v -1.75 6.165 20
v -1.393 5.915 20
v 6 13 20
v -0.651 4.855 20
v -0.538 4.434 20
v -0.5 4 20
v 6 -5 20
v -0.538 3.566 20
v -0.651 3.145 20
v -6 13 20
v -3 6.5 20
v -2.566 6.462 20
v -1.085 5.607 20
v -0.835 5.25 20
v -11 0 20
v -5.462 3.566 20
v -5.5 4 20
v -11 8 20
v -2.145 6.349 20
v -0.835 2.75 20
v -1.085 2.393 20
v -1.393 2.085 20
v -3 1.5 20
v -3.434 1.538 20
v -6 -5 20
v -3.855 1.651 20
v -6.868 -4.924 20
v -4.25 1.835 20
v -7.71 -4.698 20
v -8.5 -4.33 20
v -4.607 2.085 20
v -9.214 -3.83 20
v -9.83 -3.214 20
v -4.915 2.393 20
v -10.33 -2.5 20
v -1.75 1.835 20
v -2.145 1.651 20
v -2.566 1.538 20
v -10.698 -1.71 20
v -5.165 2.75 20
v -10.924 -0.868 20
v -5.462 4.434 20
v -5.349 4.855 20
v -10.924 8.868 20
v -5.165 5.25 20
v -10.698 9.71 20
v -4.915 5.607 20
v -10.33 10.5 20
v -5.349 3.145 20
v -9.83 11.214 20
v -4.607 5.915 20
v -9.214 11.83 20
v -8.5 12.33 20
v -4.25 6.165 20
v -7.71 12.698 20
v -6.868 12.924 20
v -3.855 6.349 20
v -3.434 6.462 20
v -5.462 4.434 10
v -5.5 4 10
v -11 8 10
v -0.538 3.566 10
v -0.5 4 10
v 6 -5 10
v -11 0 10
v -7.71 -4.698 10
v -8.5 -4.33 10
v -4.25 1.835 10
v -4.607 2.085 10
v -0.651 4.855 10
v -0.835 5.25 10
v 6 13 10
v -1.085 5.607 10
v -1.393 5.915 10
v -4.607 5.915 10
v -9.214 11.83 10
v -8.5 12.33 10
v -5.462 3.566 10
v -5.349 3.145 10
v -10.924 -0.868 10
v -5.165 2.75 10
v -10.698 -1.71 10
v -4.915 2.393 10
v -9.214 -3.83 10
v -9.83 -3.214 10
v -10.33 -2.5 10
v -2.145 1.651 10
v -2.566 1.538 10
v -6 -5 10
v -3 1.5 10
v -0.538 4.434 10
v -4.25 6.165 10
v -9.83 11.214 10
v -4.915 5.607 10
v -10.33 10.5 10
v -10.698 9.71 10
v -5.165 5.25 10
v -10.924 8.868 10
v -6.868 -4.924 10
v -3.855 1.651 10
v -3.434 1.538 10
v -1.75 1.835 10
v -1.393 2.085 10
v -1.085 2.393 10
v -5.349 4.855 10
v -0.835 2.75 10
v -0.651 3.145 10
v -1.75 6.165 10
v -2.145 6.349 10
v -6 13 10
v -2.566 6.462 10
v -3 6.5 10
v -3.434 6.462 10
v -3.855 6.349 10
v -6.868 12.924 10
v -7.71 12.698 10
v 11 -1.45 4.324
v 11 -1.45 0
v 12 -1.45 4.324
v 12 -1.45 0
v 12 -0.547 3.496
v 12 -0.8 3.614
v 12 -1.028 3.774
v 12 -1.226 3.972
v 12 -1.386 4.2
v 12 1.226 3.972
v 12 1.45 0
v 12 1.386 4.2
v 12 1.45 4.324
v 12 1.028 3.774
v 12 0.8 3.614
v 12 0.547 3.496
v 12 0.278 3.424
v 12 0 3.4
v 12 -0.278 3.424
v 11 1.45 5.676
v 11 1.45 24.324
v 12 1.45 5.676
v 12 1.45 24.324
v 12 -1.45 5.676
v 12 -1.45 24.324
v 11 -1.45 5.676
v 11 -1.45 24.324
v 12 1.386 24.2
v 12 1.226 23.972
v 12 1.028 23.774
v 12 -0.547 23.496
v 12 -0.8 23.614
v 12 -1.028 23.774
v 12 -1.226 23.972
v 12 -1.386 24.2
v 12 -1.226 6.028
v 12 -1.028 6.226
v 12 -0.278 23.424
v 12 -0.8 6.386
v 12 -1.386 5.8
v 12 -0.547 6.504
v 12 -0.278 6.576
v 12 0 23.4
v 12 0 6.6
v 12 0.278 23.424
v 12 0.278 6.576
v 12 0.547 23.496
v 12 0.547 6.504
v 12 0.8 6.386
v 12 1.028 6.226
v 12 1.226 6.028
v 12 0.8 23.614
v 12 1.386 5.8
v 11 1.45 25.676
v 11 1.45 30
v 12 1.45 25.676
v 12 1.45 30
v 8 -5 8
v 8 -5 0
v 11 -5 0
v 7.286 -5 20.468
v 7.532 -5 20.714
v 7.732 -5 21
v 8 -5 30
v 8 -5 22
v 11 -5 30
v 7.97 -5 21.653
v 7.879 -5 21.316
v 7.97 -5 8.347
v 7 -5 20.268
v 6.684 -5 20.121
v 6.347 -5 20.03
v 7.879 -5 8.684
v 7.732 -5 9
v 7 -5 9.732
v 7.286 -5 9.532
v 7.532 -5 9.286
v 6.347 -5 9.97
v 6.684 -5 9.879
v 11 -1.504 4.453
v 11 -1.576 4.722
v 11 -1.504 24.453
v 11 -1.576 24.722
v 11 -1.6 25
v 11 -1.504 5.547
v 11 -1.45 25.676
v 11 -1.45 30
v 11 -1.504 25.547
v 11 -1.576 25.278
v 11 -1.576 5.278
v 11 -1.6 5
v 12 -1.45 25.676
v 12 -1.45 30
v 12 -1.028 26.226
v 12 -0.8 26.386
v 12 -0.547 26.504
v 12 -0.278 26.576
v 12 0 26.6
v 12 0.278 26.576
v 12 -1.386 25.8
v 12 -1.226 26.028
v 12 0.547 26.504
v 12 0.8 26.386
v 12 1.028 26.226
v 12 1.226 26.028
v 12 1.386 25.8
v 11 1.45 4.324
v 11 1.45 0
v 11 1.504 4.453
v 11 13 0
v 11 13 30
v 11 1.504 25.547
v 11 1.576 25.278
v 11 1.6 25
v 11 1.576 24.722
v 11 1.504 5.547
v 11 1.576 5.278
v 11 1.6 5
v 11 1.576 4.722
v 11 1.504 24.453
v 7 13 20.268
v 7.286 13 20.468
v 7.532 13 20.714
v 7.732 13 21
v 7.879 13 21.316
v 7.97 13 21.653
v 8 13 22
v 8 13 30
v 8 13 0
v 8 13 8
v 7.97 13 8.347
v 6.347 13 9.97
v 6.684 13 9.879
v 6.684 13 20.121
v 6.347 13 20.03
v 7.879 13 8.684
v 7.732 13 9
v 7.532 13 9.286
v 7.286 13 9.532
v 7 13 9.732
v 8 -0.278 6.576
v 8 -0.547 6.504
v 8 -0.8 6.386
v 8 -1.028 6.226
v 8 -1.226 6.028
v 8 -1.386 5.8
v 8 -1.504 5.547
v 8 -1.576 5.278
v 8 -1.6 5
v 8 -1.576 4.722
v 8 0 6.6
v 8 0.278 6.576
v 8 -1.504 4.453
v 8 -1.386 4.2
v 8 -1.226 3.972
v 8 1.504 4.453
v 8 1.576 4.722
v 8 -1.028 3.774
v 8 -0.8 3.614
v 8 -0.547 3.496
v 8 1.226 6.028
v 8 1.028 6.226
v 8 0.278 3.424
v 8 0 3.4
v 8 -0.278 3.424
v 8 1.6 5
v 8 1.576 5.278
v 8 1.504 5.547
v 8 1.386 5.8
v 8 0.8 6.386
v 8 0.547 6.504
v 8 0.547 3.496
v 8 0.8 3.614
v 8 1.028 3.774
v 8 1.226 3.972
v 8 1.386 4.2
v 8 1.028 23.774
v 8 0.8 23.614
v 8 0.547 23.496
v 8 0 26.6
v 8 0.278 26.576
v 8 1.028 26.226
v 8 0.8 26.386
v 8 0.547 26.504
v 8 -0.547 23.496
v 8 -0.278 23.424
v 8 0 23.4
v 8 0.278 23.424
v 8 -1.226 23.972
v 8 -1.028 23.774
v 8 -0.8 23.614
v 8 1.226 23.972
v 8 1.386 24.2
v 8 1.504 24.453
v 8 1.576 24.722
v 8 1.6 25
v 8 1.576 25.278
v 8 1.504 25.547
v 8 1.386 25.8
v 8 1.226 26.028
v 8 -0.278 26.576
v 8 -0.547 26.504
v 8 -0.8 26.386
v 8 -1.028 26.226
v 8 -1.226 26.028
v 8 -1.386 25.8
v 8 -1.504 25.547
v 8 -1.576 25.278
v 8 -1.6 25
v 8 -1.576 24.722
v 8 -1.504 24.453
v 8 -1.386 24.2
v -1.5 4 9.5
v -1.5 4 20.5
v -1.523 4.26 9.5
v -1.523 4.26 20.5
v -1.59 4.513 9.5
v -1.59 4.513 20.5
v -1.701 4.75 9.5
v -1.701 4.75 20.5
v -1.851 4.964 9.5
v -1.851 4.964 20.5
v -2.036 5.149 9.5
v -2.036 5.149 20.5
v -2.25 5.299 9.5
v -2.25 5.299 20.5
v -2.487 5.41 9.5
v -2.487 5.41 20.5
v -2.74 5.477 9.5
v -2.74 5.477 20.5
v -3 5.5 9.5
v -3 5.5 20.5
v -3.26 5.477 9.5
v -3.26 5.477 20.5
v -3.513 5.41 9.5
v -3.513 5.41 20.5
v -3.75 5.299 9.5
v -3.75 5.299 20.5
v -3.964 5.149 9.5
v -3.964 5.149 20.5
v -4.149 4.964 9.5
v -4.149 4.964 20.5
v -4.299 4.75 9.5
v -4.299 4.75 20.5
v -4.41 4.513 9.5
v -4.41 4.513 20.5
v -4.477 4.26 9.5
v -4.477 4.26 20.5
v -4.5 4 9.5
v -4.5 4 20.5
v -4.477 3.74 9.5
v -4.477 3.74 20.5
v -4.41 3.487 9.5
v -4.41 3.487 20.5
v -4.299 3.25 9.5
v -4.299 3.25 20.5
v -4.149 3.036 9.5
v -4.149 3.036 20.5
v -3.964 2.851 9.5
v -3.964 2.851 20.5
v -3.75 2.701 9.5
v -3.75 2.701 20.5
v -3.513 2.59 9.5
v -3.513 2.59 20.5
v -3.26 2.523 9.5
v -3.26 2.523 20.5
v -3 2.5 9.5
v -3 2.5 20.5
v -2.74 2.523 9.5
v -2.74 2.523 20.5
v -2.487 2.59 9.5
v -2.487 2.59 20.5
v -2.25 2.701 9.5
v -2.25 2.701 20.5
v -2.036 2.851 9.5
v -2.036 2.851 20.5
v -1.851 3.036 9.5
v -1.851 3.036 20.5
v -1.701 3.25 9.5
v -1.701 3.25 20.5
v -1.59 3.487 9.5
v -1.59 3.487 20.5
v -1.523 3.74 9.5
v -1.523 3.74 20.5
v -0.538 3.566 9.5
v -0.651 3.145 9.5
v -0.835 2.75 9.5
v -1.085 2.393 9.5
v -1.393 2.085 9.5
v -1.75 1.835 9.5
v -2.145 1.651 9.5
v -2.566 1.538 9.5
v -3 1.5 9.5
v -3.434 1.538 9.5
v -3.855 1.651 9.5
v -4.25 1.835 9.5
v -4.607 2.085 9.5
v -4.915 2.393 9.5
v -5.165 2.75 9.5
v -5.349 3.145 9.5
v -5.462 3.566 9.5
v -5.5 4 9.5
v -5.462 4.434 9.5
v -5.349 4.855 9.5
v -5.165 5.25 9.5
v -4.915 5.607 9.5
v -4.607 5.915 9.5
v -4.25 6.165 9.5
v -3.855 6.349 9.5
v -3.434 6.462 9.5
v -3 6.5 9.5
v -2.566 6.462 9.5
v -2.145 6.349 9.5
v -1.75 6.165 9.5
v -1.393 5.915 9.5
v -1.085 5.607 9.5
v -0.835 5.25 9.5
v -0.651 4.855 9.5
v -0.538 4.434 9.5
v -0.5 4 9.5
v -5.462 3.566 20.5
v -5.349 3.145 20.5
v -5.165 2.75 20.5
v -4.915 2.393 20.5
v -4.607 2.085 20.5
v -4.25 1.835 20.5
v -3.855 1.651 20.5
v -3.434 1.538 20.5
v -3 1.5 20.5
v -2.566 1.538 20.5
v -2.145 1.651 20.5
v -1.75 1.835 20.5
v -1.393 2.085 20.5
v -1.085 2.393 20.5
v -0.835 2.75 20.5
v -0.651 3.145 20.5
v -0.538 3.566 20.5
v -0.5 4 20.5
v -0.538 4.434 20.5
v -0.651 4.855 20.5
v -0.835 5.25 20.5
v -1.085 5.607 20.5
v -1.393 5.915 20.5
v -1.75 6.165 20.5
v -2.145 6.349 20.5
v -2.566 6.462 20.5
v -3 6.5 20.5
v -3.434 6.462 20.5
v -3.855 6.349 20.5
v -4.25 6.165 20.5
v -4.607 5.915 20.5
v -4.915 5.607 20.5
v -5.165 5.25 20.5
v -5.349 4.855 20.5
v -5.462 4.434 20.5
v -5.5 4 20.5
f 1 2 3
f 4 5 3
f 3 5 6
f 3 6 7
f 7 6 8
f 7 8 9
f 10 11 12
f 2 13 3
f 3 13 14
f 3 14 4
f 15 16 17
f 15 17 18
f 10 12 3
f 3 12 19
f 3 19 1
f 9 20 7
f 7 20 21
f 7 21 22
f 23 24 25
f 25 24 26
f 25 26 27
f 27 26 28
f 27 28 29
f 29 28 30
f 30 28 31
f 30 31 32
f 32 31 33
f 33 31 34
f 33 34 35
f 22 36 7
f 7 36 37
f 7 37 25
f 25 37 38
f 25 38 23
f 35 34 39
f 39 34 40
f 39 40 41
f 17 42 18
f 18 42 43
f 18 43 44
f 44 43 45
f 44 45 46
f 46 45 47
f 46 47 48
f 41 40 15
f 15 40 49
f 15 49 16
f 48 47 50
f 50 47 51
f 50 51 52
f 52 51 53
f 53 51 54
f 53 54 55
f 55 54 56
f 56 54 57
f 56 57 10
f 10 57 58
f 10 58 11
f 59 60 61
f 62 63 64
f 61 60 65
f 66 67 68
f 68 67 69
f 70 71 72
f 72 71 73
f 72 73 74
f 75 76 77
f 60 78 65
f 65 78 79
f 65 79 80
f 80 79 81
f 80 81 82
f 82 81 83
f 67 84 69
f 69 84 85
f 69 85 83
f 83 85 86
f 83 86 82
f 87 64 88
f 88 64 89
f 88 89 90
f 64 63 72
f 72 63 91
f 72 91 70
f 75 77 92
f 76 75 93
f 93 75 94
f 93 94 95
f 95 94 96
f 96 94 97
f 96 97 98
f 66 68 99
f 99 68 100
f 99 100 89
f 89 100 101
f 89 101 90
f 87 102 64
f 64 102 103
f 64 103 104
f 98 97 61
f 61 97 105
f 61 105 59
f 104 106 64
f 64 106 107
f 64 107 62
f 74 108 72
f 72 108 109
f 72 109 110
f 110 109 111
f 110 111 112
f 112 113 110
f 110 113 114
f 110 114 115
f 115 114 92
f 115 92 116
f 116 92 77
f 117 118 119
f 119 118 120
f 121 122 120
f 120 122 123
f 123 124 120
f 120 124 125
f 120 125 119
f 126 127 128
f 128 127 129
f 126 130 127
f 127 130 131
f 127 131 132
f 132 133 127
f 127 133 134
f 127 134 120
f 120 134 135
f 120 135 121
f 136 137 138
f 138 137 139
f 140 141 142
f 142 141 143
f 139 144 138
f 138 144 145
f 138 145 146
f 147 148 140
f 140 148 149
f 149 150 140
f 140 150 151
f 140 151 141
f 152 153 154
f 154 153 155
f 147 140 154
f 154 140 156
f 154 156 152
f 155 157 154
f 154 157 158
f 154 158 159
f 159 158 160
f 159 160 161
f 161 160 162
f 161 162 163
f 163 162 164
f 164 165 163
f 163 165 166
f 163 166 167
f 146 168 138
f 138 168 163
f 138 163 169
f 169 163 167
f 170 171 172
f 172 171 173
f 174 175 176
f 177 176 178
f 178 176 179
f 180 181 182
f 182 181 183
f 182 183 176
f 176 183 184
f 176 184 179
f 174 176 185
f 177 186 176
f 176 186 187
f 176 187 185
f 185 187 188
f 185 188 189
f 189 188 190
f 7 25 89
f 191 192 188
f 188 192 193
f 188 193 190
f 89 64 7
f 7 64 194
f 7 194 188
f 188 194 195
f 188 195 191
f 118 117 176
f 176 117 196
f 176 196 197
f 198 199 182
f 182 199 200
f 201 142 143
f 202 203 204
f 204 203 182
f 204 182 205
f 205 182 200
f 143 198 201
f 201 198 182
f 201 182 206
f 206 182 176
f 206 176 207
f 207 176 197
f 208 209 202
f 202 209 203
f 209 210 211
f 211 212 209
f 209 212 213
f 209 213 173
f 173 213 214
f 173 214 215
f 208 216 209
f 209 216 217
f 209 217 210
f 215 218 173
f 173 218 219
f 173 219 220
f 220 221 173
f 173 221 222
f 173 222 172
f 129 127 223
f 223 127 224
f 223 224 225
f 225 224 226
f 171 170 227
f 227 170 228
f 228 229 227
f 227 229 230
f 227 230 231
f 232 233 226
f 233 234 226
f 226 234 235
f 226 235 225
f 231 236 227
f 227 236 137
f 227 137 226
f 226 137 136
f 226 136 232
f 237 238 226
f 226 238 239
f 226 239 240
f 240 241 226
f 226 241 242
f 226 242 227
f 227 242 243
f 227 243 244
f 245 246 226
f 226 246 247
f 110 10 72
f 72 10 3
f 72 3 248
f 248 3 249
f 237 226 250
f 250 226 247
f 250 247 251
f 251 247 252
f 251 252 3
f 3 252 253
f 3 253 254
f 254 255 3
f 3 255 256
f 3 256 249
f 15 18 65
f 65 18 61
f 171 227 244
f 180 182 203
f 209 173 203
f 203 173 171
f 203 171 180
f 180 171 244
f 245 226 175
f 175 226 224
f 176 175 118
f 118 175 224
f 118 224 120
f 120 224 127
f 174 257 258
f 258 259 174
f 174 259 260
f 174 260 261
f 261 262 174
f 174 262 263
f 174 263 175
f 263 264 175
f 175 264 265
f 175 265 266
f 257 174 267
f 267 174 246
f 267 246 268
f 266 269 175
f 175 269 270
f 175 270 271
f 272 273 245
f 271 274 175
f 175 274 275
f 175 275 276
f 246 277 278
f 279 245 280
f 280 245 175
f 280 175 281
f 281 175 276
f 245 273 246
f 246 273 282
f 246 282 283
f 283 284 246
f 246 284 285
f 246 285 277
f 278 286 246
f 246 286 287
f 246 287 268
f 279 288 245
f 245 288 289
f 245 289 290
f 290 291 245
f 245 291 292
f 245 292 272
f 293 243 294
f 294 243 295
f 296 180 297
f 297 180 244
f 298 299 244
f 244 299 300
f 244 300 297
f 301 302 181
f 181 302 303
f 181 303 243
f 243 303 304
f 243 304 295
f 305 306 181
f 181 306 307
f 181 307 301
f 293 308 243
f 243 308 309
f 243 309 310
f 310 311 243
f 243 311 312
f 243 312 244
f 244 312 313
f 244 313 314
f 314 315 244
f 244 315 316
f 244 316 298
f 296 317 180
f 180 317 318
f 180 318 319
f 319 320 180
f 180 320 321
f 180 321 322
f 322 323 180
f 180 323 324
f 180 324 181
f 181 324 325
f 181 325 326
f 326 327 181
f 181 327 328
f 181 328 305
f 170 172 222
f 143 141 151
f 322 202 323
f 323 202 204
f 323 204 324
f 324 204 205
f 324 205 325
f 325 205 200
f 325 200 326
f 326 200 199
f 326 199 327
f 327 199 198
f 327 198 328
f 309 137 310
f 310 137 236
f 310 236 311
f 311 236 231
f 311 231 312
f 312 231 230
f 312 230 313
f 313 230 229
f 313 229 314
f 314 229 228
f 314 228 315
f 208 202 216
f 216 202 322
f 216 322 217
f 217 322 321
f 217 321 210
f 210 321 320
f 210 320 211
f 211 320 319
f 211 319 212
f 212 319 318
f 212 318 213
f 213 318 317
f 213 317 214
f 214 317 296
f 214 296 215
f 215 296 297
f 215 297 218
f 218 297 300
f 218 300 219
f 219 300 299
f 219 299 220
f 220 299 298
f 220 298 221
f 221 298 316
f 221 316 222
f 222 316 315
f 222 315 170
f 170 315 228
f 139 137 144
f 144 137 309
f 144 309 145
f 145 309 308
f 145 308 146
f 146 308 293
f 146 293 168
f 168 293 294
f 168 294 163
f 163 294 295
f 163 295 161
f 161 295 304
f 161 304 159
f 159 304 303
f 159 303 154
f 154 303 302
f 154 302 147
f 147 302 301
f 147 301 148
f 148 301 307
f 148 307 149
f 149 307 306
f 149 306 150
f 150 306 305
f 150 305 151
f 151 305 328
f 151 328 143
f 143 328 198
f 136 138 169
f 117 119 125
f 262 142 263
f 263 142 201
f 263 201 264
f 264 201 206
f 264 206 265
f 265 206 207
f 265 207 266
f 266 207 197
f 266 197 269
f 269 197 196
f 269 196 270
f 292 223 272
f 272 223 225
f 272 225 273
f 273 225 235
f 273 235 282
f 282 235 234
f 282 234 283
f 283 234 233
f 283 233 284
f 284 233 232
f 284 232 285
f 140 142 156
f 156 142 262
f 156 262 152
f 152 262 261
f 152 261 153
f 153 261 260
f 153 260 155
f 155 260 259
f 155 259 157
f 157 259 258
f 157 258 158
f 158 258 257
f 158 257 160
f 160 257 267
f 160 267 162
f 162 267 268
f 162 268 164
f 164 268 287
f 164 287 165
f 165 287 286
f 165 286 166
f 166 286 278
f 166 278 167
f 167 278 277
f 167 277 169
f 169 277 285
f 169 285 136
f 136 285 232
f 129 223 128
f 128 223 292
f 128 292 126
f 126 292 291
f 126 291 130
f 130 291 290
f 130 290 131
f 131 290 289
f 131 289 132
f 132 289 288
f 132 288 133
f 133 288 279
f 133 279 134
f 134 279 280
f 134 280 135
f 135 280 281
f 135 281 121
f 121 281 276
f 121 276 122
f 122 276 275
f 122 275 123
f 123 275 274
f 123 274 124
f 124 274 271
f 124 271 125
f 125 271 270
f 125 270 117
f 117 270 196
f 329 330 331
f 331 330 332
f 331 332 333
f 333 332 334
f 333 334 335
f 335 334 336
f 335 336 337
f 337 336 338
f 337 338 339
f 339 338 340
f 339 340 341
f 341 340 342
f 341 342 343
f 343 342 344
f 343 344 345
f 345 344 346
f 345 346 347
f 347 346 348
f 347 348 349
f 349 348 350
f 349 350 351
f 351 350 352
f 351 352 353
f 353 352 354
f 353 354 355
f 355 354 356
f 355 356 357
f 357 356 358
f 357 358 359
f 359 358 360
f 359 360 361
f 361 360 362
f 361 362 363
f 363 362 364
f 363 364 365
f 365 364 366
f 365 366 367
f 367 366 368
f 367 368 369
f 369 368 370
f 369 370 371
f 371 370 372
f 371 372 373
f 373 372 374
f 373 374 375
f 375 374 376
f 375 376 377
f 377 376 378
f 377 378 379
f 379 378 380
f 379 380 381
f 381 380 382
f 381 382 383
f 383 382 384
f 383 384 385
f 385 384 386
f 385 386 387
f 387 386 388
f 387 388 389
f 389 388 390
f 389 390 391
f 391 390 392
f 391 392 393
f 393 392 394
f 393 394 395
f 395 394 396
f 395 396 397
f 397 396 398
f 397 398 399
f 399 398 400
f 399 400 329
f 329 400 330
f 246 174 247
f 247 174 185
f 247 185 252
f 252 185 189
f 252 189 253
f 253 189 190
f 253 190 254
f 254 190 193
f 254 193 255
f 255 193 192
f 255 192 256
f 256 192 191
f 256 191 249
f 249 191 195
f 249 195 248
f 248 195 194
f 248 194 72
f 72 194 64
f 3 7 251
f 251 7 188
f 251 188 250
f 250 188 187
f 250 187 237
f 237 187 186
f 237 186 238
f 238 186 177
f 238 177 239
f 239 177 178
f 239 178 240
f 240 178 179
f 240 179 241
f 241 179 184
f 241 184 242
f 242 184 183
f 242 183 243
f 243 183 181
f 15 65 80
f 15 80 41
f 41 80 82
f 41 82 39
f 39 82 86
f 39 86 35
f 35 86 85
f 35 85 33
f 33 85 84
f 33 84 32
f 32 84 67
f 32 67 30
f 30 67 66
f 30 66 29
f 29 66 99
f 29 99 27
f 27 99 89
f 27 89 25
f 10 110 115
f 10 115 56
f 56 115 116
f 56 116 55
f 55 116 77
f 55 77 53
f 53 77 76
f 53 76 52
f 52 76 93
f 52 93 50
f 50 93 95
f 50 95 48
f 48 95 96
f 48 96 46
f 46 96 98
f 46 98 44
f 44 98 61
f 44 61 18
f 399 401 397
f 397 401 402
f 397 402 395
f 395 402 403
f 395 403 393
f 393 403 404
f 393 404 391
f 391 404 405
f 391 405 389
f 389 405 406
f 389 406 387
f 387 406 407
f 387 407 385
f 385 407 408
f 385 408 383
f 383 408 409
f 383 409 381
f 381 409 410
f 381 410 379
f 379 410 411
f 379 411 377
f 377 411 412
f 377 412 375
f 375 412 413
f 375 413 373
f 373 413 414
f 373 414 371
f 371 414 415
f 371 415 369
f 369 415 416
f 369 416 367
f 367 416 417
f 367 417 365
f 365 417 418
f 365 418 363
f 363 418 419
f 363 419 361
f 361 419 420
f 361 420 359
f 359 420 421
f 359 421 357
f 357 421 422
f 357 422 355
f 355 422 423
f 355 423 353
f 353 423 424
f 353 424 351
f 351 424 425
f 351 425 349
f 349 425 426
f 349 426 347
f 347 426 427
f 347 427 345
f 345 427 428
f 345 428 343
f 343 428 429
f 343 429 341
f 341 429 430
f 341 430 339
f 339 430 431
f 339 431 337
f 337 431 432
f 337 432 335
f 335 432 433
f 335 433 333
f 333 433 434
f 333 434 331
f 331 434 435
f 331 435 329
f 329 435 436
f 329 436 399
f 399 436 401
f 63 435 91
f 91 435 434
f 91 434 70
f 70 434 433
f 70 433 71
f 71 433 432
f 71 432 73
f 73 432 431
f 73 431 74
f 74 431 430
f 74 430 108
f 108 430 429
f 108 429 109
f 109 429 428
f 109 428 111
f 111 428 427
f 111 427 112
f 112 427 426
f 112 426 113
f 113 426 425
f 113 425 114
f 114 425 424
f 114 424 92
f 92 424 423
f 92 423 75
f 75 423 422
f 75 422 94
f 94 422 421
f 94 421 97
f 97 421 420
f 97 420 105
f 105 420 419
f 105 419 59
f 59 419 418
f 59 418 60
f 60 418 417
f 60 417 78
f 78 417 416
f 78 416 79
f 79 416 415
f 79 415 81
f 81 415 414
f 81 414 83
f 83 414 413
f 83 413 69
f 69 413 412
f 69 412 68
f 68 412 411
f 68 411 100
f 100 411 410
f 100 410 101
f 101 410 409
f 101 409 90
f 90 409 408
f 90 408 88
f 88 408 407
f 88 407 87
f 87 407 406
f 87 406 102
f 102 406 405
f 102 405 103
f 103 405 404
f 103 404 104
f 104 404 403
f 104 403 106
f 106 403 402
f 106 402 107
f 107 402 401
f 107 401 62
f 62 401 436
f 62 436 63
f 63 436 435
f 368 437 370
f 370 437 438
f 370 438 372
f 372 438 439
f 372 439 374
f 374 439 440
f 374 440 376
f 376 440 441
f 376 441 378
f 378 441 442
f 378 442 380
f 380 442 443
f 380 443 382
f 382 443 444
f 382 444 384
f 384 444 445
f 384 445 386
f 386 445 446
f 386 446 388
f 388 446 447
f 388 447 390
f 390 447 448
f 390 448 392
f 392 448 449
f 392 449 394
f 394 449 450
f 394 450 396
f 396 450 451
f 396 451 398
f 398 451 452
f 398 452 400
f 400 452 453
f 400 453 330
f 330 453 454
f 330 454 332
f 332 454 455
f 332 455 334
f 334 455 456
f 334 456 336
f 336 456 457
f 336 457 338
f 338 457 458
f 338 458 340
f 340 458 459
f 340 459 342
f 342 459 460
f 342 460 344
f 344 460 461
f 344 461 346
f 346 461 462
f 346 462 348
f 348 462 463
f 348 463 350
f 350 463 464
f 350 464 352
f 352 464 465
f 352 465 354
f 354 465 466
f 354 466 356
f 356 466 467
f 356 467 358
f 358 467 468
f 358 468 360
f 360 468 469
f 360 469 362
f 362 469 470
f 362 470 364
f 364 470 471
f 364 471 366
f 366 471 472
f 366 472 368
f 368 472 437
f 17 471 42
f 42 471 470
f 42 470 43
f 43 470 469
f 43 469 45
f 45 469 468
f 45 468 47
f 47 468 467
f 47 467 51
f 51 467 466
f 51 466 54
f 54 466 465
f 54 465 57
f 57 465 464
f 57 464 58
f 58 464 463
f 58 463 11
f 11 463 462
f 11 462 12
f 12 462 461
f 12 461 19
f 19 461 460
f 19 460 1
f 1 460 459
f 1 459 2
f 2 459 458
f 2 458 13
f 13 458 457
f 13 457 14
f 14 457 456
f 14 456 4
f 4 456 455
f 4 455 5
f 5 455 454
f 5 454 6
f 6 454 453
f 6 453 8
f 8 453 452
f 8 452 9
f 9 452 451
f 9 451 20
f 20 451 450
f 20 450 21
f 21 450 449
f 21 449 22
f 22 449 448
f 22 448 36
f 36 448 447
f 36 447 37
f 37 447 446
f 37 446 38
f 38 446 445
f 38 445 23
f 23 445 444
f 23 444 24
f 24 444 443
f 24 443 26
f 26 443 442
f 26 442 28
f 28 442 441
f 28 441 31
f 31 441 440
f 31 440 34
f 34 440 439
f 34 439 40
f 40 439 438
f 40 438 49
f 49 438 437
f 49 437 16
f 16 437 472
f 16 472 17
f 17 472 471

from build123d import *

# Parameters (mm, degrees)
MAIN_EXTRUSION_DEPTH            = 30
ESQUISSE2_W                     = 19
ESQUISSE2_H                     = 10
EXTERNAL_HOLE_DEPTH             = 37.986484018
ESQUISSE3_R                     = 1.6
MAKERBEAMFIXINGHOLE_DEPTH       = 38.815340802
ESQUISSE4_R                     = 1.5
HOLELINKWITHCODERSSUPPORT_DEPTH = 27.702059846
CONG_2_R                        = 2
CONG_3_R                        = 5
ESQUISSE6_R                     = 2.5
ESQUISSE6_R_2                   = 1.5
BOSS_EXTRU_1_DEPTH              = 0.5
ESQUISSE7_R                     = 2.5
ESQUISSE7_R_2                   = 1.5
BOSS_EXTRU_2_DEPTH              = 0.5


with BuildPart() as part:
    # Esquisse1 → Main Extrusion (new body)
    with BuildSketch(Plane.XY):
        Polygon((-11, 13), (-11, -5), (11, -5), (11, -1.45), (12, -1.45), (12, 1.45), (11, 1.45), (11, 13), align=None)
    extrude(amount=MAIN_EXTRUSION_DEPTH)

    # Esquisse2 → External Hole (cut, through all)
    with BuildSketch(Plane(origin=(0, 13, 0), x_dir=(1, 0, 0), z_dir=(0, 1, 0))):
        with Locations((-1.5, -5)):
            Rectangle(ESQUISSE2_W, ESQUISSE2_H)
        with Locations((-1.5, -25)):
            Rectangle(ESQUISSE2_W, ESQUISSE2_H)
    extrude(amount=-EXTERNAL_HOLE_DEPTH, mode=Mode.SUBTRACT)

    # Esquisse3 → MakerBeamFixingHole (cut, through all)
    with BuildSketch(Plane.ZY.offset(-8)):
        with Locations(Location((5, 0, 0), (0, 0, 270))):
            Circle(ESQUISSE3_R)
        with Locations(Location((25, 0, 0), (0, 0, 270))):
            Circle(ESQUISSE3_R)
    extrude(amount=-MAKERBEAMFIXINGHOLE_DEPTH, mode=Mode.SUBTRACT)

    # Esquisse4 → HoleLinkWithCodersSupport (cut, through all)
    with BuildSketch(Plane.XY.offset(20)):
        with Locations((-3, 4)):
            Circle(ESQUISSE4_R)
    extrude(amount=-HOLELINKWITHCODERSSUPPORT_DEPTH, mode=Mode.SUBTRACT)

    # Congé2
    cong_2_edges = [part.edges().sort_by_distance(p)[0] for p in [
        (8, 4, 10),
        (8, 4, 20),
    ]]
    fillet(cong_2_edges, radius=CONG_2_R)

    # Congé3
    cong_3_edges = [part.edges().sort_by_distance(p)[0] for p in [
        (-11, 13, 15),
        (-11, -5, 15),
    ]]
    fillet(cong_3_edges, radius=CONG_3_R)

    # Esquisse6 → Boss.-Extru.1 (add)
    with BuildSketch(Plane(origin=(0, 0, 10), x_dir=(-1, 0, 0), z_dir=(0, 0, -1))):
        with Locations(Location((3, 4, 0), (0, 0, 180))):
            Circle(ESQUISSE6_R)
        with Locations(Location((3, 4, 0), (0, 0, 180))):
            Circle(ESQUISSE6_R_2, mode=Mode.SUBTRACT)
    extrude(amount=BOSS_EXTRU_1_DEPTH)

    # Esquisse7 → Boss.-Extru.2 (add)
    with BuildSketch(Plane.XY.offset(20)):
        with Locations((-3, 4)):
            Circle(ESQUISSE7_R)
        with Locations((-3, 4)):
            Circle(ESQUISSE7_R_2, mode=Mode.SUBTRACT)
    extrude(amount=BOSS_EXTRU_2_DEPTH)


solid = part.part
